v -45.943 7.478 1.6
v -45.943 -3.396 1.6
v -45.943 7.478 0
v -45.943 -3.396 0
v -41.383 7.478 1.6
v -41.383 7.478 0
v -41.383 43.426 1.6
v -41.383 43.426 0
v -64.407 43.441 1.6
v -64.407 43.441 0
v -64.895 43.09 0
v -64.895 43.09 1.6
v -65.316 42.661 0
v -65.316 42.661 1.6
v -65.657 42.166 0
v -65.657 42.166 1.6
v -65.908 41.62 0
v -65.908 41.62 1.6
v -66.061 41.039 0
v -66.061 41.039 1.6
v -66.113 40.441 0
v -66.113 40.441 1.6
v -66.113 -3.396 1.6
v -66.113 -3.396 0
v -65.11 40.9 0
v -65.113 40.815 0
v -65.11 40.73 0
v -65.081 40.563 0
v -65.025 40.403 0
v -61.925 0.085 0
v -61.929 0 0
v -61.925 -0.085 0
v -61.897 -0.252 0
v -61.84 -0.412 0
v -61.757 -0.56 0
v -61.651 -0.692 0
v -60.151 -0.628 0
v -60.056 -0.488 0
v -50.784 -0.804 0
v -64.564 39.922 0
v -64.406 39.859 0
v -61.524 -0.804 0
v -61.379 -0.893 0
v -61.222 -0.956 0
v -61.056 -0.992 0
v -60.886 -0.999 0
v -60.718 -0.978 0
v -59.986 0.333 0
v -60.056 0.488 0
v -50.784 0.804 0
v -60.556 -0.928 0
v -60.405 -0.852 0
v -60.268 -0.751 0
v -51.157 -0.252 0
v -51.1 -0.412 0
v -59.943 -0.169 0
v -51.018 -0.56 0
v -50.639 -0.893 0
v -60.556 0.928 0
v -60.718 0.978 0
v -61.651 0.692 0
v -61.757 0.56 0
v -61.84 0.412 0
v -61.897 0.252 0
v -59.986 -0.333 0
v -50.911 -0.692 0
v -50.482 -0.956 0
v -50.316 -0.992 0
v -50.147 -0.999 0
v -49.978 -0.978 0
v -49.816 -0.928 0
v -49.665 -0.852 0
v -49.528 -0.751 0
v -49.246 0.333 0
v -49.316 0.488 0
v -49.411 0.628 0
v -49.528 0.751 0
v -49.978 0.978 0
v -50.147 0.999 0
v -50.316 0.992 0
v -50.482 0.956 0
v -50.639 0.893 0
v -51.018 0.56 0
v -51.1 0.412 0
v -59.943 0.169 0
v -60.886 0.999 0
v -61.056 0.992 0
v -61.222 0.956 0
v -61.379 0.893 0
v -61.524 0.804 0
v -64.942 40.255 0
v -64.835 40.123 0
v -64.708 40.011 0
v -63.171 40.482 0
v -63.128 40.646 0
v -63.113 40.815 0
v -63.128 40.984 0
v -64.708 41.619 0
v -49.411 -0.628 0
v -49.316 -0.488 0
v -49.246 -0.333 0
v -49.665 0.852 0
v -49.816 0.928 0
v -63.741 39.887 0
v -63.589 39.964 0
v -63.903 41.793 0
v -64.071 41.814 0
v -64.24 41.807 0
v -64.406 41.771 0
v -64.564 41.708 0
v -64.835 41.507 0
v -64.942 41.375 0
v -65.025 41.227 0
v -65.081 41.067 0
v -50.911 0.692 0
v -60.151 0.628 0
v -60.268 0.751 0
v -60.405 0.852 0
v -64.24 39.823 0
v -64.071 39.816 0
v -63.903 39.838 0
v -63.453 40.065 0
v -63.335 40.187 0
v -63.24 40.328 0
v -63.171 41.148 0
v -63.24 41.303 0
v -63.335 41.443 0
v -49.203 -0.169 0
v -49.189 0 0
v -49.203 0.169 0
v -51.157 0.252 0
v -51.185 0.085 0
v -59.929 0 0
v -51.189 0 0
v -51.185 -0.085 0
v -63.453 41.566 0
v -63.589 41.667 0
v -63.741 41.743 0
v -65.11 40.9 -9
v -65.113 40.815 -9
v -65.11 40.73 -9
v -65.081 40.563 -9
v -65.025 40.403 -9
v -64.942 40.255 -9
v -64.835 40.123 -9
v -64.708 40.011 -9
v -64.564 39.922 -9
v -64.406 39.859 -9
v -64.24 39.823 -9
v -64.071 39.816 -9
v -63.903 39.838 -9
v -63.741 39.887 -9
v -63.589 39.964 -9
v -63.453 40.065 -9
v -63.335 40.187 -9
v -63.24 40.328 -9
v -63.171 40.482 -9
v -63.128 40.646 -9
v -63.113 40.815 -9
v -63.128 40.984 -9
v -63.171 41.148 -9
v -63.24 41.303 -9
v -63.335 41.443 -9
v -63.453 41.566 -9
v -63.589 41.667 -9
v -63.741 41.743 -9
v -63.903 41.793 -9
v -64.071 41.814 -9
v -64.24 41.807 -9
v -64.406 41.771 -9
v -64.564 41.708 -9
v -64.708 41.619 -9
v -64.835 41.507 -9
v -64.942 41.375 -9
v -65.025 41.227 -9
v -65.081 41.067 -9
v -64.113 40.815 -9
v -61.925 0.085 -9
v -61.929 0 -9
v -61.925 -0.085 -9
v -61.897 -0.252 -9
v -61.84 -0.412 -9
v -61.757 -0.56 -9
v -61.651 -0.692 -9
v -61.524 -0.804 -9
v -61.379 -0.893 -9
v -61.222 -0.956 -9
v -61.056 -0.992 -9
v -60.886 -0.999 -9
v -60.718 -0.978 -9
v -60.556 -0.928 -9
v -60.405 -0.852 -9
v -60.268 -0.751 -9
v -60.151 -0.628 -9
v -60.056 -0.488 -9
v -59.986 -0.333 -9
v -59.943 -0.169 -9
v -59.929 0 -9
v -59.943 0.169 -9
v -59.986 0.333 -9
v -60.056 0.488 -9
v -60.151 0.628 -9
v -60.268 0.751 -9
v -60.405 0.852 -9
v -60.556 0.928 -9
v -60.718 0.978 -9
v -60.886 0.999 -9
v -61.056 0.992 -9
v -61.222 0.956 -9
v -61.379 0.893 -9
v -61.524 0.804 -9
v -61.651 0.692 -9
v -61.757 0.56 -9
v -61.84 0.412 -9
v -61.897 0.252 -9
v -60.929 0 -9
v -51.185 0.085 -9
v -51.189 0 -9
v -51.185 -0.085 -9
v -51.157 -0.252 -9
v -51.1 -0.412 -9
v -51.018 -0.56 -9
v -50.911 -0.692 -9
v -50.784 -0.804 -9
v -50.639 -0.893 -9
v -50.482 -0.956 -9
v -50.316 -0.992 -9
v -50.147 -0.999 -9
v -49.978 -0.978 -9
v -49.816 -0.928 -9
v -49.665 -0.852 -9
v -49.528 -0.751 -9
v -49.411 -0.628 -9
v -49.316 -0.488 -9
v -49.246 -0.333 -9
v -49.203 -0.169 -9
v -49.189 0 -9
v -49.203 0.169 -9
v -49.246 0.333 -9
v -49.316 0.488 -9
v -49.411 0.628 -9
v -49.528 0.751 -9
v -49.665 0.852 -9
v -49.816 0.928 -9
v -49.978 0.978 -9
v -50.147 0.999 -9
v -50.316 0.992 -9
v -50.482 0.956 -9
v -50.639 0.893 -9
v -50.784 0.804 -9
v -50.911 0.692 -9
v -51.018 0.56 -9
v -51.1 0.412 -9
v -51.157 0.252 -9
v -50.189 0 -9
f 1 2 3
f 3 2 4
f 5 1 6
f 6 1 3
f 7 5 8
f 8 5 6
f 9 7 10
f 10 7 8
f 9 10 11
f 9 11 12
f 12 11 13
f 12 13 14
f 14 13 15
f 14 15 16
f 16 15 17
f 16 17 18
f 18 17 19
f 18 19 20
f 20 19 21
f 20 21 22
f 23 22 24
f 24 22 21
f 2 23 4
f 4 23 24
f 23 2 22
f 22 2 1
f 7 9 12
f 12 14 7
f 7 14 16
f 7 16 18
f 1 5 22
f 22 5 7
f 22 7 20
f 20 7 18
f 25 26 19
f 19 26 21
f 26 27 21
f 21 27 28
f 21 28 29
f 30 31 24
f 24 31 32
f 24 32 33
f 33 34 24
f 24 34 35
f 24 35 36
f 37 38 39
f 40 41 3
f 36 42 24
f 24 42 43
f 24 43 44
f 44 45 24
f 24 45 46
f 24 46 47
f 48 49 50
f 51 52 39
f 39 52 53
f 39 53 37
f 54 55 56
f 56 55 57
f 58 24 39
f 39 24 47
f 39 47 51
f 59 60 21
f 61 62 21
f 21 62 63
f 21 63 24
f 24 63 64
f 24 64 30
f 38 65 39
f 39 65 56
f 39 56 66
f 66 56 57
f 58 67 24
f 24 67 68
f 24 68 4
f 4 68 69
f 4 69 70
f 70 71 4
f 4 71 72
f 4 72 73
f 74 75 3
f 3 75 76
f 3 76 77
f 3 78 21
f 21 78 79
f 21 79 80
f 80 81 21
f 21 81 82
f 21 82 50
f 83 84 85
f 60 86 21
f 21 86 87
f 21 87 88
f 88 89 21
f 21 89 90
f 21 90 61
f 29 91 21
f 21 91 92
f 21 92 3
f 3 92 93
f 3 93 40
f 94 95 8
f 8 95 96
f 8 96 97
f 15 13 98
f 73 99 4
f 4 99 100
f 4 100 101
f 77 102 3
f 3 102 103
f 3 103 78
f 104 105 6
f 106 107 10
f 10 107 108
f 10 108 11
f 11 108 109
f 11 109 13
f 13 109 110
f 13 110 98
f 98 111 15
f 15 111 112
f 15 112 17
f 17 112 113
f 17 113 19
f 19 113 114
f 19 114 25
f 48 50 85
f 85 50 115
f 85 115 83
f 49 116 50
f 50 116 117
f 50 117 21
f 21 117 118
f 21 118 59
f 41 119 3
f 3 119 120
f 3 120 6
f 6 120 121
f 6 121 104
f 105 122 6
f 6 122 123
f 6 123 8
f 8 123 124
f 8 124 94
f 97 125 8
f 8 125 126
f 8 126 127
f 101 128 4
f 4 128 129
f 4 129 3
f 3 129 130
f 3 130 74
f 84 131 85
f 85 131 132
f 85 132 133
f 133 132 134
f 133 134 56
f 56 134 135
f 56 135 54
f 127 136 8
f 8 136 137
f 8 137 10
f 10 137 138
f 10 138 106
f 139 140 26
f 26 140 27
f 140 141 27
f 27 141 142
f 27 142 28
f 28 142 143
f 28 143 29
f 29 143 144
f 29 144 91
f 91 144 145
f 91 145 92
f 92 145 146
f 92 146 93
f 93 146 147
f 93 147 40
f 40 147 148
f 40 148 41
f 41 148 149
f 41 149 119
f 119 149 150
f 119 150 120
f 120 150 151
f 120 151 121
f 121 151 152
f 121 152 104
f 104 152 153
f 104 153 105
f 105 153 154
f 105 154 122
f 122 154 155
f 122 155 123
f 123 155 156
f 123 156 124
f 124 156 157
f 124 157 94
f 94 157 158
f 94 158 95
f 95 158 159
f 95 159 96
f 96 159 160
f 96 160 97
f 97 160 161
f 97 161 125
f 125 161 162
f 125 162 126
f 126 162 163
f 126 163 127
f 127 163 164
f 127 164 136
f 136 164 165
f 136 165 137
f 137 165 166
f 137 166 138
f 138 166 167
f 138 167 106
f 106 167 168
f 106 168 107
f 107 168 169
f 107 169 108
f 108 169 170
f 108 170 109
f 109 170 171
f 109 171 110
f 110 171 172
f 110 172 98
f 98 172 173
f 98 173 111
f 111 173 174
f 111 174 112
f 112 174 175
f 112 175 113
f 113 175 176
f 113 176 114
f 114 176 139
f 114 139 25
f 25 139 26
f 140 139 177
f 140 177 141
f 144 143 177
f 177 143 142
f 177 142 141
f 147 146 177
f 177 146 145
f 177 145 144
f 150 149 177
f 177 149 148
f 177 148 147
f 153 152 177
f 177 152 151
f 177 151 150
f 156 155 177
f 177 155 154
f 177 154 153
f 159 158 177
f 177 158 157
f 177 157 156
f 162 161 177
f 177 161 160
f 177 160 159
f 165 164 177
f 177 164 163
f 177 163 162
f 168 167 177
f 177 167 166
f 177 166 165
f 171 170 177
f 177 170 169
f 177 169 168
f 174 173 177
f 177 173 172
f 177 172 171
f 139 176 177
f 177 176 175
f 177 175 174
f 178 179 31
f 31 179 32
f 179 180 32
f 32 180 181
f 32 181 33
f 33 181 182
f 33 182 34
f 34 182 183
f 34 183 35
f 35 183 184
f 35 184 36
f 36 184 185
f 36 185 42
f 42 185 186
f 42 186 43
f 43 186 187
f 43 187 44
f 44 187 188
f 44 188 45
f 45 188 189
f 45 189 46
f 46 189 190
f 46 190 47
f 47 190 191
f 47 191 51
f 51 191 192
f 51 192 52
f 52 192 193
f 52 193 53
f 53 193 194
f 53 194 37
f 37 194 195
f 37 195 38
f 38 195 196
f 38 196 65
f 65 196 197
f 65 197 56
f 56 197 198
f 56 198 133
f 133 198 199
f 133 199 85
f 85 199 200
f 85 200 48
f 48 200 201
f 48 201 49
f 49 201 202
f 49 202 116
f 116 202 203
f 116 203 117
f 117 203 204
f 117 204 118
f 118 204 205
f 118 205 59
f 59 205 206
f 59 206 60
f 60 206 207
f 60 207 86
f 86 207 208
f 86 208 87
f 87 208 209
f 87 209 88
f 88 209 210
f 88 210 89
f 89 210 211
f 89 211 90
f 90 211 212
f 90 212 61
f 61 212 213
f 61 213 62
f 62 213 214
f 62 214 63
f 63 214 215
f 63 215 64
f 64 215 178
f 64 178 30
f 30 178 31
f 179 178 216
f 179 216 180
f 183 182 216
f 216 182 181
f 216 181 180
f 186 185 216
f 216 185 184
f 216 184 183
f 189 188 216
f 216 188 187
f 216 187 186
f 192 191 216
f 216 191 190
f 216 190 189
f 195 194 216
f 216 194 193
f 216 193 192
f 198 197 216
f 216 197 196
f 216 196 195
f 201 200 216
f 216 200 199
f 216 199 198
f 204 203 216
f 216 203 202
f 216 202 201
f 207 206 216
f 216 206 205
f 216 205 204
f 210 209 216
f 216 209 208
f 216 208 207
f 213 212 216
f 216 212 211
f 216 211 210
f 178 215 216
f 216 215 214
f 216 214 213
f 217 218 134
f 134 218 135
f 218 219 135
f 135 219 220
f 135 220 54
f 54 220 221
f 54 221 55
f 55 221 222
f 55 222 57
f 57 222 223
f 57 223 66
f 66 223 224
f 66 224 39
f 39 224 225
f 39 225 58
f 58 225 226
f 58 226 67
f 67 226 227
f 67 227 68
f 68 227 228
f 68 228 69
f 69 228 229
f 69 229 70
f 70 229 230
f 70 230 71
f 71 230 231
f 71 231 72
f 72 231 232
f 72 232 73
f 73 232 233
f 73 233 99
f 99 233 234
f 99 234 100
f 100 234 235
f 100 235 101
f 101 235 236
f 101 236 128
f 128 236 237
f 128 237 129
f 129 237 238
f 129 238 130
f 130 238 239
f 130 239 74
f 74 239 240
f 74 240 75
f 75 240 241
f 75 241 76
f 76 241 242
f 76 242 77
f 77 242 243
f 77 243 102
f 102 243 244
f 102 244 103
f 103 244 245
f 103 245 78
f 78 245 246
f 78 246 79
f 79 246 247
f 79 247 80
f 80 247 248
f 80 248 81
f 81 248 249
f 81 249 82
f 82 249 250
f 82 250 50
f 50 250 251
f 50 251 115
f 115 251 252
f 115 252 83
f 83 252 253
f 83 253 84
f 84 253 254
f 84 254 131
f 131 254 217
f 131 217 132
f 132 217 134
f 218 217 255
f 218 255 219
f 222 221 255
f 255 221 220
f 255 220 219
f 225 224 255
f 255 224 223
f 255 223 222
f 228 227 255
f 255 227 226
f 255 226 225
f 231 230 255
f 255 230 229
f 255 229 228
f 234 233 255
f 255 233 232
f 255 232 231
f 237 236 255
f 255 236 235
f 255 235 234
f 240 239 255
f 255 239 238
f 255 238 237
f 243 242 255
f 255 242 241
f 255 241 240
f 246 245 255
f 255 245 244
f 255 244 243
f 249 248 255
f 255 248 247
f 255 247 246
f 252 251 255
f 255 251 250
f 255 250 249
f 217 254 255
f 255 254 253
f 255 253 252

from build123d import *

# Parameters (mm, degrees)
BOSS_EXTRUDE1_DEPTH = 1.6
SKETCH3_R           = 1
BOSS_EXTRUDE2_DEPTH = 9


with BuildPart() as part:
    # Sketch1 → Boss-Extrude1 (new body)
    with BuildSketch(Plane.XY):
        with BuildLine():
            Line((-41.383181355, 43.426165336), (-41.383181355, 7.477968892))
            Line((-41.383181355, 7.477968892), (-45.94349159, 7.477968892))
            Line((-45.94349159, 7.477968892), (-45.94349159, -3.396104602))
            Line((-45.94349159, -3.396104602), (-66.113144039, -3.396104602))
            Line((-66.113144039, -3.396104602), (-66.113144039, 40.440533192))
            ThreePointArc((-66.113144039, 40.440533192), (-65.656687939, 42.166215415), (-64.406709132, 43.4405326))
            Line((-64.406709132, 43.4405326), (-41.383181355, 43.426165336))
        make_face()
    extrude(amount=BOSS_EXTRUDE1_DEPTH)

    # Sketch3 → Boss-Extrude2 (add)
    with BuildSketch(Plane(origin=(0, 0, 0), x_dir=(-1, 0, 0), z_dir=(0, 0, -1))):
        with Locations((50.189000543, 0)):
            Circle(SKETCH3_R)
        with Locations((60.928928446, 0)):
            Circle(SKETCH3_R)
        with Locations((64.113441952, 40.81521395)):
            Circle(SKETCH3_R)
    extrude(amount=BOSS_EXTRUDE2_DEPTH)


solid = part.part
